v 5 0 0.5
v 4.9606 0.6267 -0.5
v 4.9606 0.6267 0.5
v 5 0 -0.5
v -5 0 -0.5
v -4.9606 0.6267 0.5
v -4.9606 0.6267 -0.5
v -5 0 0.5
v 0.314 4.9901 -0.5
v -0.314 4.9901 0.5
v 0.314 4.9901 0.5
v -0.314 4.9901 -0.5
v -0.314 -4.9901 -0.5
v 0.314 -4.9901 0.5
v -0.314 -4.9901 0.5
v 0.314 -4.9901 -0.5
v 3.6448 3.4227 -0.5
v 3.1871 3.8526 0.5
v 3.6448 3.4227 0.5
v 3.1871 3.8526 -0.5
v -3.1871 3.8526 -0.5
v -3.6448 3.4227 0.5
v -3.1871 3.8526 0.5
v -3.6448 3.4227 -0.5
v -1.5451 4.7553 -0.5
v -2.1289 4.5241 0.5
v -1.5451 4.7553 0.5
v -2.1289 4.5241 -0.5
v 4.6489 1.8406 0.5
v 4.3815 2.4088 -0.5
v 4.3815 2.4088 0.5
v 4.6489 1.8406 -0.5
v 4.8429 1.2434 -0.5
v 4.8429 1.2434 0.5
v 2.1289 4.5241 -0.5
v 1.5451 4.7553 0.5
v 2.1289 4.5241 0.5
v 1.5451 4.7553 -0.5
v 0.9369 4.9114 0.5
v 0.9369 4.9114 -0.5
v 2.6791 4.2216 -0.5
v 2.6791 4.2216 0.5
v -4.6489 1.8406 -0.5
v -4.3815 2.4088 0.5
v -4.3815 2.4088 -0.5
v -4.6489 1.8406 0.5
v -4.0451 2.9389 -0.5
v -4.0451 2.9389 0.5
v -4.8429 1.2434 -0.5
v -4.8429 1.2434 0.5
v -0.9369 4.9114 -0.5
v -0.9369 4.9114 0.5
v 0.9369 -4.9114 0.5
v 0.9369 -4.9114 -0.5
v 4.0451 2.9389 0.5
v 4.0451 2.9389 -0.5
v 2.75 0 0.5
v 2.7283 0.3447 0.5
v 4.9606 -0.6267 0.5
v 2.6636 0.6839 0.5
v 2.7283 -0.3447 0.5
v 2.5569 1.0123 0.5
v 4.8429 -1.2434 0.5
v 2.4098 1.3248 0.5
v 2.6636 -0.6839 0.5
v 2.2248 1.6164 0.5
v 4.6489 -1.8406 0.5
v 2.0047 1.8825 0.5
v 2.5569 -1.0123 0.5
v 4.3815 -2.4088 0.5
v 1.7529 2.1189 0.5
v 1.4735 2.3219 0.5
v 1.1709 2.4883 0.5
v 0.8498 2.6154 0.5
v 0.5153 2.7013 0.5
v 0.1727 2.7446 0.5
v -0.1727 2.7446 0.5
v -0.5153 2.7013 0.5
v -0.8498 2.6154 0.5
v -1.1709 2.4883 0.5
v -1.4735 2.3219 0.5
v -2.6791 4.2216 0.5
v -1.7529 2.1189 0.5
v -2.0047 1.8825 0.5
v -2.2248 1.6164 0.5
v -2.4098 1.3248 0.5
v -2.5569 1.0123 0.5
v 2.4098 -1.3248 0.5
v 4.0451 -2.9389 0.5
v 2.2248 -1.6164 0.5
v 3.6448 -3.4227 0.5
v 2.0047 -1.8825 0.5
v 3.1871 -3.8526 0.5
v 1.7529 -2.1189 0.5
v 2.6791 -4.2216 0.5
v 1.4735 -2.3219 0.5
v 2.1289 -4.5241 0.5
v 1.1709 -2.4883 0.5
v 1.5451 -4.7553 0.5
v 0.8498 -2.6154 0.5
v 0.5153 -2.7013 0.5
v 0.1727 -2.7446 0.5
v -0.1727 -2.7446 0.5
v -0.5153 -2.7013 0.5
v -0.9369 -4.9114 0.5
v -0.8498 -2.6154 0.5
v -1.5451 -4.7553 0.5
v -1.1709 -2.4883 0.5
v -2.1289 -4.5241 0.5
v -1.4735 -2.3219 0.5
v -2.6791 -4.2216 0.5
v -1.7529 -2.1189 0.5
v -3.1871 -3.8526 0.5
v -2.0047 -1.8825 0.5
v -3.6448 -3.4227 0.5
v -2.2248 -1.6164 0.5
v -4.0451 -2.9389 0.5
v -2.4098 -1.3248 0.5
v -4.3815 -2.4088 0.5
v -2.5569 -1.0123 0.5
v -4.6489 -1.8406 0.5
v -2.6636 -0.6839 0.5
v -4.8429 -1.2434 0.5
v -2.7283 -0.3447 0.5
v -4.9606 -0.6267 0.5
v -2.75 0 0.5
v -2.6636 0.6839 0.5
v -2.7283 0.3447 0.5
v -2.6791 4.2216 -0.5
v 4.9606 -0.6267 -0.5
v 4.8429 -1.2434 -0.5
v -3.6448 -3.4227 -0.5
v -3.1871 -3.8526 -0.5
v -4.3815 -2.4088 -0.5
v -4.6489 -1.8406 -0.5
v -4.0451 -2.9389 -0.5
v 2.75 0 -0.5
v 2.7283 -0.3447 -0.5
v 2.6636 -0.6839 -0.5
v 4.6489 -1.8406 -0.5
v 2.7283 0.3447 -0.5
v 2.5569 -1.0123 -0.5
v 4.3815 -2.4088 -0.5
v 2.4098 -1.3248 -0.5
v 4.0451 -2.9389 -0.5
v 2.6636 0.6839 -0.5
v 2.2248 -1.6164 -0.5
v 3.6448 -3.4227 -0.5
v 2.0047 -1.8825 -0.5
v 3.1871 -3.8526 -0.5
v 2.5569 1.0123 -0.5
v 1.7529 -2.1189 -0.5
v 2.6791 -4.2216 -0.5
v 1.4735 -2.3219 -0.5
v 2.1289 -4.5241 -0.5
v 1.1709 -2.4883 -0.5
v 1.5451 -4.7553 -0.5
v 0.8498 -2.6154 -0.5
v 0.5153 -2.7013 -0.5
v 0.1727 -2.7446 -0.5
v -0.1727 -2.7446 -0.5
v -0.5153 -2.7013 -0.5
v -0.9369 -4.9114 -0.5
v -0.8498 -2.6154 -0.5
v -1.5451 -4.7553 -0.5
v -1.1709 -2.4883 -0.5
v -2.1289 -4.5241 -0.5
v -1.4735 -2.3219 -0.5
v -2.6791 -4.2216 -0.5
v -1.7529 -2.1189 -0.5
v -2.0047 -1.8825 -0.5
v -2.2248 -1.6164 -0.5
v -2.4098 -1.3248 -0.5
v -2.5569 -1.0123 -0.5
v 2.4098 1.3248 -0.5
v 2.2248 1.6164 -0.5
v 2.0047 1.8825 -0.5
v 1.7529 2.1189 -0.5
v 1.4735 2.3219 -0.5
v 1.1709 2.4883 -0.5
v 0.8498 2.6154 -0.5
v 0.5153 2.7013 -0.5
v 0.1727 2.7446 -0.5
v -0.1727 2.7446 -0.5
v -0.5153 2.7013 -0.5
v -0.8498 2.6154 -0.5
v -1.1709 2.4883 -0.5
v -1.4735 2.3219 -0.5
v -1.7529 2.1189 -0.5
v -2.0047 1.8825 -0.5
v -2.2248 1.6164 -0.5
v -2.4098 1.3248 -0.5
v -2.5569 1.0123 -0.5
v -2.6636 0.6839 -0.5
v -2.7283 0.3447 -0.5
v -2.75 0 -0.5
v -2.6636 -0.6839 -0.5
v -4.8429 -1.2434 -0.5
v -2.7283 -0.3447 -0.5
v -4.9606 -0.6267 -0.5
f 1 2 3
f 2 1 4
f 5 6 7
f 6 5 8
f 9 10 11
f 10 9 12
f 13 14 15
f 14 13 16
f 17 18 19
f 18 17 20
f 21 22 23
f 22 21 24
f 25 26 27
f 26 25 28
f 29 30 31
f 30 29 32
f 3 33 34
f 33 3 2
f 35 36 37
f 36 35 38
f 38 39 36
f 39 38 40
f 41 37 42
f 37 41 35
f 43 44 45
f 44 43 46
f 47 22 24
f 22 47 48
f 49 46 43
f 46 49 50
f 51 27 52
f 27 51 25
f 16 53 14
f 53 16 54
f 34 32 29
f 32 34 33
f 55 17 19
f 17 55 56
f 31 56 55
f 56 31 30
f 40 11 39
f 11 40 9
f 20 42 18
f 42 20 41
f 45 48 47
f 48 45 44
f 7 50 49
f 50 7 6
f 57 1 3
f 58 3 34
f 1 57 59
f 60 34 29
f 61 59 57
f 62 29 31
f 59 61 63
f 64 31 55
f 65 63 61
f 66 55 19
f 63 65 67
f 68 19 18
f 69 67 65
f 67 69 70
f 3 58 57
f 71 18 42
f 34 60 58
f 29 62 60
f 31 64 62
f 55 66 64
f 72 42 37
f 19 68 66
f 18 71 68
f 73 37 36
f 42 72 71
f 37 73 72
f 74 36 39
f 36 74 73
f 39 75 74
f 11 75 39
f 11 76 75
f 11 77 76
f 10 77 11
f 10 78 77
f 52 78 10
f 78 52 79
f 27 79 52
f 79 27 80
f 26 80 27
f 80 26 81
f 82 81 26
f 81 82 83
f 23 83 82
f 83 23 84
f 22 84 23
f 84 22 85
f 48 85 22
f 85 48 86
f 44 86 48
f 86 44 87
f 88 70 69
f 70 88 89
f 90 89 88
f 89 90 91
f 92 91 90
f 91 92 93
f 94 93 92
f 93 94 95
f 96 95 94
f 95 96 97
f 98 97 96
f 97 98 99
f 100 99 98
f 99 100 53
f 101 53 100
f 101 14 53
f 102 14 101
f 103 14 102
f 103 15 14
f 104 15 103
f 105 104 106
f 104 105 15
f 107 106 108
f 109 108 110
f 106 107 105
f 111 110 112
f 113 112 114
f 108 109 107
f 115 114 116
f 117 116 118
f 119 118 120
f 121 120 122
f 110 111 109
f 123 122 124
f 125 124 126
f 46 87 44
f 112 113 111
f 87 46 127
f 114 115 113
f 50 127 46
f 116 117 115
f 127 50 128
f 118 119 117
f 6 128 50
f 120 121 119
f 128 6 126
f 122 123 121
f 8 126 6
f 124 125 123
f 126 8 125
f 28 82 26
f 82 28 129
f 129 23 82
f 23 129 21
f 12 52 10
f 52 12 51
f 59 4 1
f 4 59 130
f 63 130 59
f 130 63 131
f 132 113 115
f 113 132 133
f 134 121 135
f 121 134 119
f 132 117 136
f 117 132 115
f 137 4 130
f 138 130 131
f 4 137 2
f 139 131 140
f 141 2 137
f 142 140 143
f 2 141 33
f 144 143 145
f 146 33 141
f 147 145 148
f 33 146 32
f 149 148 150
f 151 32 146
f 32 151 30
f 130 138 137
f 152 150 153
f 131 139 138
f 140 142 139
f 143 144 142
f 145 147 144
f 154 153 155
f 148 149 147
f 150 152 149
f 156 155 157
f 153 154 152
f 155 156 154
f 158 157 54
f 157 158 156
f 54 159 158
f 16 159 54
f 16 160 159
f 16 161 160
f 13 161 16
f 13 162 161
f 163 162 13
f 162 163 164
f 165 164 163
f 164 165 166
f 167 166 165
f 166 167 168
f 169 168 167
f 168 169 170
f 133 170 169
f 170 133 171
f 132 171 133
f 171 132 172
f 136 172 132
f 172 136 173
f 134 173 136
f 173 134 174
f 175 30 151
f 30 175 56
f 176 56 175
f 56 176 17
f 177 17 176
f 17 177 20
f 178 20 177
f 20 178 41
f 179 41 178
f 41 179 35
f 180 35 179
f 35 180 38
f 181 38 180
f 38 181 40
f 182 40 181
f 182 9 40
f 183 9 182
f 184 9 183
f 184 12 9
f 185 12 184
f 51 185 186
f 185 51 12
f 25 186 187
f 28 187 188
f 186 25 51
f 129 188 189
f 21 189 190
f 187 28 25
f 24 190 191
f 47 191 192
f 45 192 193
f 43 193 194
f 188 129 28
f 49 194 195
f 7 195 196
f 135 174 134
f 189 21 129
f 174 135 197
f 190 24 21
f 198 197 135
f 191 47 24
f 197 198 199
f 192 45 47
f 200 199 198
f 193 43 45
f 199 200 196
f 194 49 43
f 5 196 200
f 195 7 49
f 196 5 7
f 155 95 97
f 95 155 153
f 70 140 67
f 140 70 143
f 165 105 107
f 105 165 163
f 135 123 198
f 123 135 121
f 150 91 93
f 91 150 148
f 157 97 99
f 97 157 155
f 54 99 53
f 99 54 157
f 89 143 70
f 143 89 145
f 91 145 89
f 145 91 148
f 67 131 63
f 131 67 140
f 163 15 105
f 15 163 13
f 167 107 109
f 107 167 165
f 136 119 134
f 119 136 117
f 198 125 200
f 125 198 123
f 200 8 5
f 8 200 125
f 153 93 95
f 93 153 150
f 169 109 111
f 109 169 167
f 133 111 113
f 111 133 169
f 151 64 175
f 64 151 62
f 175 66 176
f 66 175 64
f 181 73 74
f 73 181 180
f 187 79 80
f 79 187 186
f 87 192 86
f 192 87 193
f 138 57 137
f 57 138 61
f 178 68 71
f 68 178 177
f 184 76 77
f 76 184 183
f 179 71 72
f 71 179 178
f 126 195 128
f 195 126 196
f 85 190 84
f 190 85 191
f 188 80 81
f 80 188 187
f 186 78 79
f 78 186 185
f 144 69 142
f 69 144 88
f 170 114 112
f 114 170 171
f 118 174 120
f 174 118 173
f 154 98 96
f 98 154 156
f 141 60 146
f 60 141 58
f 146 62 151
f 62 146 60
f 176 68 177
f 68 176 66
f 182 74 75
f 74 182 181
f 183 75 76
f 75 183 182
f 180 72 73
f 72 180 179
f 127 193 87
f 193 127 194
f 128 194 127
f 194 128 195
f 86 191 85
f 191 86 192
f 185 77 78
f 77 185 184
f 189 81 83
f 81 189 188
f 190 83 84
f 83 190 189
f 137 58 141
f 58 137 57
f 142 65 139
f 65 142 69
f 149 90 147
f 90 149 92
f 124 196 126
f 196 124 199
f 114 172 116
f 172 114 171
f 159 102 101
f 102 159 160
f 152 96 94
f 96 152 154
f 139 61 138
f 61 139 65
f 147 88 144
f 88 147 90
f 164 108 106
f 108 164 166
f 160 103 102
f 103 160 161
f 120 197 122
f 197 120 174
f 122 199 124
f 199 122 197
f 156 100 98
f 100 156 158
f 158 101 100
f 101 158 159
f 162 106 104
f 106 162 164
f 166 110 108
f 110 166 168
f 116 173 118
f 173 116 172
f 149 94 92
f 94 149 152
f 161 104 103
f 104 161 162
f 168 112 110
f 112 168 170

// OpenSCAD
$fn = 50;


difference() {
	union() {
		translate(v = [0, 0, -0.5000000000]) {
			cylinder(h = 1, r = 5.0000000000);
		}
	}
	union() {
		translate(v = [0, 0, -100.0000000000]) {
			cylinder(h = 200, r = 2.7500000000);
		}
	}
}
